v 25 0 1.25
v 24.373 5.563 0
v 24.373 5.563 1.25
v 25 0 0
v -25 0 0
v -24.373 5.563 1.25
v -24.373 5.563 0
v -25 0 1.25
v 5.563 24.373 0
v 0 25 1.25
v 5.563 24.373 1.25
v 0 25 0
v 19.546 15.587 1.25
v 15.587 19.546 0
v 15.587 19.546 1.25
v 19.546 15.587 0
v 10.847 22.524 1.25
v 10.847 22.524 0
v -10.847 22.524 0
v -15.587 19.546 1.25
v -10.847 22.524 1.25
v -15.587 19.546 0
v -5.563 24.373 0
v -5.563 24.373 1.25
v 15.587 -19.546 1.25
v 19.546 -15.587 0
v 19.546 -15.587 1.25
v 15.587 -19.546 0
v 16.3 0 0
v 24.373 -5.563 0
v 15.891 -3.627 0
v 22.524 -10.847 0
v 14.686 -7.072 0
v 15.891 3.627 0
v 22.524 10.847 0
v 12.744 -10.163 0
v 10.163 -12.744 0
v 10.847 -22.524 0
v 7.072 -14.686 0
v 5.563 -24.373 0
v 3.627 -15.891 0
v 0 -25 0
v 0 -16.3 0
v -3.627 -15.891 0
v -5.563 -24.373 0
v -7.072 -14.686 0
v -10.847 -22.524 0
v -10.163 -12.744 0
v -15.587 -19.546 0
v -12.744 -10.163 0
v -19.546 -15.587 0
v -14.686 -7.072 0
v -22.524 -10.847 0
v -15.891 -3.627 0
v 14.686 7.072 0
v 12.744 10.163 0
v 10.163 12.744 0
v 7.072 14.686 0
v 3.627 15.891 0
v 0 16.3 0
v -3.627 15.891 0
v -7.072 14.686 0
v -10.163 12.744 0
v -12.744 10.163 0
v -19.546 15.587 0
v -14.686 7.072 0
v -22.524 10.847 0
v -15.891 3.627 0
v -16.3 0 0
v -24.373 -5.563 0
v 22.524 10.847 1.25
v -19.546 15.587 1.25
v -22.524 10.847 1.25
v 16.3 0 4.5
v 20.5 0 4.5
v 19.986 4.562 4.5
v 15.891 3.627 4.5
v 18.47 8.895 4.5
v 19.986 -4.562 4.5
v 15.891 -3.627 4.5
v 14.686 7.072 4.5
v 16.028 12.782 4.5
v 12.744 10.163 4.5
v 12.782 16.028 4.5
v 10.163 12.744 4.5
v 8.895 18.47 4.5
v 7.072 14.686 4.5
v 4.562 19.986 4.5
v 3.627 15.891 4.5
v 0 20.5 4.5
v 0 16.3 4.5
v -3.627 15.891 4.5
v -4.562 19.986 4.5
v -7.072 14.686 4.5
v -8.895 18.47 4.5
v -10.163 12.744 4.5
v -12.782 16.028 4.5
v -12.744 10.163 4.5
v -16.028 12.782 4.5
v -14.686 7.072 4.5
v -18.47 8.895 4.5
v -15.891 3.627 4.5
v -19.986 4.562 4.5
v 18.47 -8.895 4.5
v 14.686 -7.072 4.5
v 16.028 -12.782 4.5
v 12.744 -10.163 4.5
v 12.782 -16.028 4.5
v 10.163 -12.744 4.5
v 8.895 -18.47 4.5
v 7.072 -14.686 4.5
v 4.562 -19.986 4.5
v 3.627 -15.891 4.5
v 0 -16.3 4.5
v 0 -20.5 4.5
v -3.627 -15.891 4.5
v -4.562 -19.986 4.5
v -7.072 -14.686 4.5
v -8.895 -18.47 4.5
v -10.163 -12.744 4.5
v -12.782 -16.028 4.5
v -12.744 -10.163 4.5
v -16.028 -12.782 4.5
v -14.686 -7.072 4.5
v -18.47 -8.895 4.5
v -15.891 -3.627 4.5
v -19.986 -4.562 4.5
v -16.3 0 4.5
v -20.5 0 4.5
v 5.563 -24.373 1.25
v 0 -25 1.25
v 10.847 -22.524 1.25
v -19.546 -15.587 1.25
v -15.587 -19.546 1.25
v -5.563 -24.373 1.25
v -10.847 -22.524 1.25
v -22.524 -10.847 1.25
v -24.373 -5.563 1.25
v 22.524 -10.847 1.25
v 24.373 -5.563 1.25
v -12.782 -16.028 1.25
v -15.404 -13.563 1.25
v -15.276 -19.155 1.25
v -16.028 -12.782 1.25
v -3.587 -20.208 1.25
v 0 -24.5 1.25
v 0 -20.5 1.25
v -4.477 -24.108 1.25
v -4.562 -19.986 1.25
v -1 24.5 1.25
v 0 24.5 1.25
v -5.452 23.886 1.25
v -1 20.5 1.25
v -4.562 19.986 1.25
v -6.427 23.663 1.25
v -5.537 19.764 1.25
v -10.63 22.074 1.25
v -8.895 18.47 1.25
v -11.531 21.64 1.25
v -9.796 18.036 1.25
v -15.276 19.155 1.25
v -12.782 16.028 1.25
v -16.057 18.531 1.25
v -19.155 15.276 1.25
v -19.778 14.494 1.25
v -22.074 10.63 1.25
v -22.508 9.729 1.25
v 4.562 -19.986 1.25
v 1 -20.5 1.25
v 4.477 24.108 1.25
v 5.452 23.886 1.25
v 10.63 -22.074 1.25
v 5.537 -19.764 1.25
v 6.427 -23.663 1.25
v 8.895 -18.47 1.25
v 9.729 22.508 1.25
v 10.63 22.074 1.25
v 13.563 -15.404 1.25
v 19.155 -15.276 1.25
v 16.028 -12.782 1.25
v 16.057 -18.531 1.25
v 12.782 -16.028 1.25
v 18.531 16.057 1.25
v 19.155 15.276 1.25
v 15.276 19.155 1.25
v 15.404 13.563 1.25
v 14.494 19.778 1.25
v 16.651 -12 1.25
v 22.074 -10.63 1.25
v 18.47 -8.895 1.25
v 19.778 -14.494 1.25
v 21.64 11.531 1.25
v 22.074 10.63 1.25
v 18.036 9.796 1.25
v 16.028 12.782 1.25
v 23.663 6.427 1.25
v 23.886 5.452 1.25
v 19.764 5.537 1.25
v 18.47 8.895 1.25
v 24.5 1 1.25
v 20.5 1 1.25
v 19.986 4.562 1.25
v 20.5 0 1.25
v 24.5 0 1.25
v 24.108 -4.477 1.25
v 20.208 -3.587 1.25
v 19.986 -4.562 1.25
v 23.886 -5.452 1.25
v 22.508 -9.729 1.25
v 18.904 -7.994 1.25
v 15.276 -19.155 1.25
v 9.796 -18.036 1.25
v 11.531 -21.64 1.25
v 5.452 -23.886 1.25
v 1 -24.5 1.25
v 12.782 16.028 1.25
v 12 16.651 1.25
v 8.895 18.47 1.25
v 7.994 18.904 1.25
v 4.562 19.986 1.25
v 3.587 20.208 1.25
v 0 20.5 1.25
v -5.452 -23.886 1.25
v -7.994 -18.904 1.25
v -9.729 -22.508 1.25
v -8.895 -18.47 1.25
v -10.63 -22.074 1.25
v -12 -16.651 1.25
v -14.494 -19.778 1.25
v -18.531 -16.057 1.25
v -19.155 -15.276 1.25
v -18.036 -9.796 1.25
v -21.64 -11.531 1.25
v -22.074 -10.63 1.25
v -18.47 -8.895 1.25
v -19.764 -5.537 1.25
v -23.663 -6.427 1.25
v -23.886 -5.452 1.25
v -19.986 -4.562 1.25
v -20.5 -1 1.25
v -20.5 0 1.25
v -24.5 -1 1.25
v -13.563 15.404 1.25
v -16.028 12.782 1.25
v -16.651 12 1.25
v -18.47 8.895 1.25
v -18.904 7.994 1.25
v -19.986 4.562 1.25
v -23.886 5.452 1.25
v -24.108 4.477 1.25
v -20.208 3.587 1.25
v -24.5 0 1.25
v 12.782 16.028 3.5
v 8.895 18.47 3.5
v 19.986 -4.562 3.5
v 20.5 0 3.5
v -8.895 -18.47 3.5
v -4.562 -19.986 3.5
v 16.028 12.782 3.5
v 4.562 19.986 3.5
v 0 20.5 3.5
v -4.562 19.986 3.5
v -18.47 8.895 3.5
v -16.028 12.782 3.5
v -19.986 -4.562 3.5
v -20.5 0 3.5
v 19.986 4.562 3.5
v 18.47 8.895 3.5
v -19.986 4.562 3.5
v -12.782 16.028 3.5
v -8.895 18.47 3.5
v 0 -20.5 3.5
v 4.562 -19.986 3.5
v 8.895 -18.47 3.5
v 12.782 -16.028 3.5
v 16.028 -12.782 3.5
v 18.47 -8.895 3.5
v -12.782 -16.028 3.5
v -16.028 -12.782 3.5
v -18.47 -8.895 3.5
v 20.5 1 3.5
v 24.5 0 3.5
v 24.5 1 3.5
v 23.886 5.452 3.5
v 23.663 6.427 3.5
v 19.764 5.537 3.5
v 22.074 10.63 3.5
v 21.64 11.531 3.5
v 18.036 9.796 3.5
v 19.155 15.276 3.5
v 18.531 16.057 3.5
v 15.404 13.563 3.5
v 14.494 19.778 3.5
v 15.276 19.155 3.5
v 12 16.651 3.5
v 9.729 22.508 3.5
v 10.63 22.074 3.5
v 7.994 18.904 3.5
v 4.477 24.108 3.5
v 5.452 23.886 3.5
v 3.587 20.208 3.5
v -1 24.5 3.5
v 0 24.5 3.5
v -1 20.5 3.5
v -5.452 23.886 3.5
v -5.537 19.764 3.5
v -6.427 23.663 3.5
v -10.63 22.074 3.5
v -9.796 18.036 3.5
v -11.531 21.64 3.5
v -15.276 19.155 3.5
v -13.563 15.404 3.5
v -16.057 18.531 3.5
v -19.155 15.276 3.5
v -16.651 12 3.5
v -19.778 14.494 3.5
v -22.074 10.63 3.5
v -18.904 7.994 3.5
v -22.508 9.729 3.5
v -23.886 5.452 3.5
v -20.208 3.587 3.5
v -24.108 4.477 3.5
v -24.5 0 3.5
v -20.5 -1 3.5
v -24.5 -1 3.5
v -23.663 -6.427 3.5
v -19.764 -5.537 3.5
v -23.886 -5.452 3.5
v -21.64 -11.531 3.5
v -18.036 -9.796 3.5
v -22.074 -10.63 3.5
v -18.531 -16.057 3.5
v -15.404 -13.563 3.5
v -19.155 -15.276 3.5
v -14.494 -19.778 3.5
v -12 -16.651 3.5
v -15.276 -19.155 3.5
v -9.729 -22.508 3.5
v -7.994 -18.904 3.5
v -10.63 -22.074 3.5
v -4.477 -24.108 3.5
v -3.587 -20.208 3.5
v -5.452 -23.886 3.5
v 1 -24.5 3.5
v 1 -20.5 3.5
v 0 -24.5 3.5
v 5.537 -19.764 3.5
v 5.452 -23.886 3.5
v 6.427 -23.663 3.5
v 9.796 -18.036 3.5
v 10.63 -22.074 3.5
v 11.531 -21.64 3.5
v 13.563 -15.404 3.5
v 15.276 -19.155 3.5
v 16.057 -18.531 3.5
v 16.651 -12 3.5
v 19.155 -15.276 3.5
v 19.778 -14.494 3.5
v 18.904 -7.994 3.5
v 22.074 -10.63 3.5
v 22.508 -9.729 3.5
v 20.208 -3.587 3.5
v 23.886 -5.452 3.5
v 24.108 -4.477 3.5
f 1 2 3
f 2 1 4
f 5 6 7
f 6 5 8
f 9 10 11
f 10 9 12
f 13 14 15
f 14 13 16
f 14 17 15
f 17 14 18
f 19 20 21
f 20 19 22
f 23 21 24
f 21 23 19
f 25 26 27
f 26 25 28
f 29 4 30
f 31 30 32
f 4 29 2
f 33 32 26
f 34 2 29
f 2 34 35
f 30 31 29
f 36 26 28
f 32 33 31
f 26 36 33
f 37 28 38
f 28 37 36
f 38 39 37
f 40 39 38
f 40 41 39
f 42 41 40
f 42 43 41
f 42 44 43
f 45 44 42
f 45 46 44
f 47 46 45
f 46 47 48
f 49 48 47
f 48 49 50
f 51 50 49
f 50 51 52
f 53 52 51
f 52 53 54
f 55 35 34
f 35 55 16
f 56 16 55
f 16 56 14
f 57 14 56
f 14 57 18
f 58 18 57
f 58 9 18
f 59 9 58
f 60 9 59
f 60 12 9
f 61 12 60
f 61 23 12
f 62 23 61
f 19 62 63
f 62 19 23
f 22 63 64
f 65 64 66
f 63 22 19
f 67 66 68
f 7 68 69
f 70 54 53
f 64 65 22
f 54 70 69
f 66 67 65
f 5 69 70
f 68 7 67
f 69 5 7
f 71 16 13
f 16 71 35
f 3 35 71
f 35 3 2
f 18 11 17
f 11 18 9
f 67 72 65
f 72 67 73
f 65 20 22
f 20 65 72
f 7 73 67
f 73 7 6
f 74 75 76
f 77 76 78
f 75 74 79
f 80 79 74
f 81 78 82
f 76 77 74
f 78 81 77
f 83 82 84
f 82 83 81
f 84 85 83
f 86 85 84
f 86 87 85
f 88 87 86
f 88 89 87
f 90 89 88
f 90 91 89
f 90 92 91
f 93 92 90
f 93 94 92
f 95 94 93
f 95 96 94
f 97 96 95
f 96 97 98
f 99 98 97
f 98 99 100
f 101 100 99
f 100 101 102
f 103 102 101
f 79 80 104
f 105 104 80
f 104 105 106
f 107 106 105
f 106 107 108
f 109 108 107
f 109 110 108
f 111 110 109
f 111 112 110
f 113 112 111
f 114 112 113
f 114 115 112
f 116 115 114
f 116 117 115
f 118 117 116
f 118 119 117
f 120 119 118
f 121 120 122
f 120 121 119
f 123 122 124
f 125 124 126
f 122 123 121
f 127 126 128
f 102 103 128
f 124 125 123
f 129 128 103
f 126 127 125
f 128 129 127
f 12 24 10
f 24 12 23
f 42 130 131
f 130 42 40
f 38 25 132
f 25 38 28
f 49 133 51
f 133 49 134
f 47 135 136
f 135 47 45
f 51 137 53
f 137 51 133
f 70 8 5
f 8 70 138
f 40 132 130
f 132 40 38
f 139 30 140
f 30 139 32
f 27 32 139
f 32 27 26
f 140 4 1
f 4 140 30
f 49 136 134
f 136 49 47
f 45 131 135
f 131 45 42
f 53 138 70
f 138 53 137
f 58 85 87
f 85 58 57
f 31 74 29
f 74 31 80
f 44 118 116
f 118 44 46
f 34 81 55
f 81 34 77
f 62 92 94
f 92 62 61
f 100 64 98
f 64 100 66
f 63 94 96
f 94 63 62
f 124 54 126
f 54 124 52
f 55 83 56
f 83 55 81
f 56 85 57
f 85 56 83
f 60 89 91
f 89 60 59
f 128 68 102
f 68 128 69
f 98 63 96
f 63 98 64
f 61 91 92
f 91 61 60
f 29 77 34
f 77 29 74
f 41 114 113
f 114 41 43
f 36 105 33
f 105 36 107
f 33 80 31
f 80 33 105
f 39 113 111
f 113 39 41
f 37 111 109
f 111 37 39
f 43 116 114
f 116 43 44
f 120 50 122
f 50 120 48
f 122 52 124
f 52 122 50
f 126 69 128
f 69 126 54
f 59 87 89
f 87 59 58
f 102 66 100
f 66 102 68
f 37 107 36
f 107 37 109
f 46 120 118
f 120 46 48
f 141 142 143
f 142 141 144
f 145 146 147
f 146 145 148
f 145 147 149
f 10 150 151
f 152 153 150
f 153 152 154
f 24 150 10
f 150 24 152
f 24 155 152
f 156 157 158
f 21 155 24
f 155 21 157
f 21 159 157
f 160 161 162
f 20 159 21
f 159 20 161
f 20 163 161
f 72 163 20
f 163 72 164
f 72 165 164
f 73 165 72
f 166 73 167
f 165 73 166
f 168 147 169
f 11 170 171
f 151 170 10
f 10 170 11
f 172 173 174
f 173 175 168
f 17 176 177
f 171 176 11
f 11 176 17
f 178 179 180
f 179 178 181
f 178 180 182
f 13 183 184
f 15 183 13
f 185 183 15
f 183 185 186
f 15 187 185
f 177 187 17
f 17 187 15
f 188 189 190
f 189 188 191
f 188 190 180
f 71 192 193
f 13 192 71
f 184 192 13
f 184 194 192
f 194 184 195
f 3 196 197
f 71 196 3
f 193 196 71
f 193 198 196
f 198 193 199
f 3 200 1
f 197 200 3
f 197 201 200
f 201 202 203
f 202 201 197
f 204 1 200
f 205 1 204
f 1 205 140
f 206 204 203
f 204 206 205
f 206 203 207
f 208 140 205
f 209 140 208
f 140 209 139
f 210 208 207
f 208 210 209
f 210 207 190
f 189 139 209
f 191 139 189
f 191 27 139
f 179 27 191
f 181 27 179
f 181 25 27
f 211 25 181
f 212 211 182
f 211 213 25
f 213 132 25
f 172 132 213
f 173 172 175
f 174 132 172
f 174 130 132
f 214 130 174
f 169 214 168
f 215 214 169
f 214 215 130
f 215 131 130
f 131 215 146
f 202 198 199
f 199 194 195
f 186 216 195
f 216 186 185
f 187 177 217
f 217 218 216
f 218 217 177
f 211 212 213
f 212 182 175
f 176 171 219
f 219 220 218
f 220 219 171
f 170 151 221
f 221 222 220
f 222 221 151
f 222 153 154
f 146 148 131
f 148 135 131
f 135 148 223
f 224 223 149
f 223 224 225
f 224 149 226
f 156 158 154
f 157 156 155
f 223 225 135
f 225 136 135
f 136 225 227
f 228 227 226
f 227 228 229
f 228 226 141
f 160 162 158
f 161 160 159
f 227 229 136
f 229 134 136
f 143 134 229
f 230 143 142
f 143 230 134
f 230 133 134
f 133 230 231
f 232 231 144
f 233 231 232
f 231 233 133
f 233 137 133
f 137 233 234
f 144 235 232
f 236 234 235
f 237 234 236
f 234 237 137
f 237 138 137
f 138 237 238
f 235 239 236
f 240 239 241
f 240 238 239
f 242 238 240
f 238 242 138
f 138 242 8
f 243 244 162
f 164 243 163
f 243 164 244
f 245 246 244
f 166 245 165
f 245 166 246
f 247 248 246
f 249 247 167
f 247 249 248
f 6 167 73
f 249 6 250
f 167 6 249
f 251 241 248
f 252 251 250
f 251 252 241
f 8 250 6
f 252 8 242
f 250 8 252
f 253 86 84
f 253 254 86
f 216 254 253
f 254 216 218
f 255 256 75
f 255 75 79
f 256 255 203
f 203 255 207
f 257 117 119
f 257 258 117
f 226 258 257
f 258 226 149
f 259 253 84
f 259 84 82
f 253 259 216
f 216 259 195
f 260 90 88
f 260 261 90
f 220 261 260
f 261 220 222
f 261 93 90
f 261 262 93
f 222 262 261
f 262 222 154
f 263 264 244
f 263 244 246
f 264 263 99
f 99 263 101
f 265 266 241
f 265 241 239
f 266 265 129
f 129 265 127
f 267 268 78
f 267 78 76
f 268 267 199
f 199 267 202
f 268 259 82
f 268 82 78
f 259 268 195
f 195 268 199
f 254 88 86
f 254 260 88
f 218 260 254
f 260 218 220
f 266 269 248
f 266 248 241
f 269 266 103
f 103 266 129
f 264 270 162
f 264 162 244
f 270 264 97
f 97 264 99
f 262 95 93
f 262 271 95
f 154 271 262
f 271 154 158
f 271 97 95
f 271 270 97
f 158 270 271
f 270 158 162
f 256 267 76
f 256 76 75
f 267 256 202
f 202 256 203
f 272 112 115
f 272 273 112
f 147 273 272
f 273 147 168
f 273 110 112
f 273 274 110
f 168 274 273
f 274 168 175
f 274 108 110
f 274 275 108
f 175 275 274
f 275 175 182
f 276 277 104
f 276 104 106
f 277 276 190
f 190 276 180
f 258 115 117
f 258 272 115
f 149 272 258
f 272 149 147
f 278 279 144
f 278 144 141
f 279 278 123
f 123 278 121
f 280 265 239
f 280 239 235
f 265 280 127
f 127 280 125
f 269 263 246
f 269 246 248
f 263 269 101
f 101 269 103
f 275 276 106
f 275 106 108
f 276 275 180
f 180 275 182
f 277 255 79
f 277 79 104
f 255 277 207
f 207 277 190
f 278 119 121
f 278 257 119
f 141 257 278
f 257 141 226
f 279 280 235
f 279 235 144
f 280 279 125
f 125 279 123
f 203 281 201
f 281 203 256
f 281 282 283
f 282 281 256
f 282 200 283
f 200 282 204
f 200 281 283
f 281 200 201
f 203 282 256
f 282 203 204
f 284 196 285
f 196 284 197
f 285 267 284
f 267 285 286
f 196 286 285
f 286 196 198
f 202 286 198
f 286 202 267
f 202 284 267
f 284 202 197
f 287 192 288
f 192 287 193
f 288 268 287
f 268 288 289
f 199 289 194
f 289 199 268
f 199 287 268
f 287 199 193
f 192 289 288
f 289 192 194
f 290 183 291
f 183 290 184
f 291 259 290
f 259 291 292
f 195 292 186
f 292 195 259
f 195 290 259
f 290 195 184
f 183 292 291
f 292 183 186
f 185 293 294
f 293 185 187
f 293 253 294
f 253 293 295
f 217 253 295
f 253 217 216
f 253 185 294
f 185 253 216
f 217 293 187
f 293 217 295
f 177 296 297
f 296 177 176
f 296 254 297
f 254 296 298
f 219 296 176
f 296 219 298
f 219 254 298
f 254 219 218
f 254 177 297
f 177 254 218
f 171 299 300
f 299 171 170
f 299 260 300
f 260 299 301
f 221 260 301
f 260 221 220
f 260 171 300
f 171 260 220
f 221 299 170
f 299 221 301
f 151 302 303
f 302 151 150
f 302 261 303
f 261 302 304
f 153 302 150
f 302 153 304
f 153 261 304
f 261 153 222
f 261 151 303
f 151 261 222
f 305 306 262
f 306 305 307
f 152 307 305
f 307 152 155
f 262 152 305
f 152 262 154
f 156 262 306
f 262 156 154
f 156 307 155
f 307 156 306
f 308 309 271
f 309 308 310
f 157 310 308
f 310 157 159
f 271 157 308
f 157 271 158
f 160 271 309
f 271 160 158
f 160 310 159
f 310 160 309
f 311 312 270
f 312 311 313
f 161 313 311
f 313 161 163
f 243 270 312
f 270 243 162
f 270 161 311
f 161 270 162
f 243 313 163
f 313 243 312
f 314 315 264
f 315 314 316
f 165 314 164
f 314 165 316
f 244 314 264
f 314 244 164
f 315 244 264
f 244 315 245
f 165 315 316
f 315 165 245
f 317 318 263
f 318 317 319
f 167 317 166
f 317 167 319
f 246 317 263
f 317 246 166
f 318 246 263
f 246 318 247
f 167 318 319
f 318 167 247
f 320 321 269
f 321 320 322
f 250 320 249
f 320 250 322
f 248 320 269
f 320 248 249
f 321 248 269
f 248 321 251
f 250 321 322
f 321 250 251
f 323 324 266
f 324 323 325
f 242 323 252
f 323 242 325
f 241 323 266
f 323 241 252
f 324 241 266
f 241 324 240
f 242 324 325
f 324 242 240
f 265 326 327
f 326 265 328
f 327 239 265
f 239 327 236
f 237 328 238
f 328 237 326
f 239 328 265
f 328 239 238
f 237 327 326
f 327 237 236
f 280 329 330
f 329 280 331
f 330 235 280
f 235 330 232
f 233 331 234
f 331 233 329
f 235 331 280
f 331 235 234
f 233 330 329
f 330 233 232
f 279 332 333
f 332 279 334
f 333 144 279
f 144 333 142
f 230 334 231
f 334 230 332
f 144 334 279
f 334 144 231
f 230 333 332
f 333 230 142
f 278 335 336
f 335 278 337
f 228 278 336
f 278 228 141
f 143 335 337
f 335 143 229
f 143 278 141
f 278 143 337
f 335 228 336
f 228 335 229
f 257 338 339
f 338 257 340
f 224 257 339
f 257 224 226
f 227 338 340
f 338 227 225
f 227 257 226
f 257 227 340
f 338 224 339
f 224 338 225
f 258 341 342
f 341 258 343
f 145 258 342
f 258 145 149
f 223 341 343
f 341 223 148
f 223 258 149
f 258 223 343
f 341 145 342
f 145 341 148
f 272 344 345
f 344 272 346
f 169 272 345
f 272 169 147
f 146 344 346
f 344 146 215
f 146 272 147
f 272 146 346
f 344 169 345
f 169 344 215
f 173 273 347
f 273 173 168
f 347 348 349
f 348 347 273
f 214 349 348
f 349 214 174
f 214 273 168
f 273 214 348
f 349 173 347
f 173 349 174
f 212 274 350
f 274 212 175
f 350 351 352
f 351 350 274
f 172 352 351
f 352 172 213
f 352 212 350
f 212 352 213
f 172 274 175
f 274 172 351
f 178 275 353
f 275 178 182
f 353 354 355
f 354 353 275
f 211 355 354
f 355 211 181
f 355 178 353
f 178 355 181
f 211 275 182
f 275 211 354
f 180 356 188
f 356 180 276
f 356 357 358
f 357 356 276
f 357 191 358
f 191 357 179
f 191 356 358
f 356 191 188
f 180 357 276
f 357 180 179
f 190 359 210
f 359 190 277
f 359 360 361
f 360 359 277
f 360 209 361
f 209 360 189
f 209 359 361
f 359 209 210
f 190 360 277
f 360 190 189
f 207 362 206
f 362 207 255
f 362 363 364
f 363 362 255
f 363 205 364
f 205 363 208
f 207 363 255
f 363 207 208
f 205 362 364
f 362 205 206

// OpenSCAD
// file: lib.scad
PF=1;//preview fix

module tube(h=1,r=2,ir=1){
    
    difference(){
        cylinder(h,r=r);
        translate([0,0,-1*PF]) cylinder(h+(PF*2),r=ir);
    }
   
}


module rollerGear(h=4,r=25,tooth=4.5, nTeeth=28,wall=2 ){
    
    toothInset = r-tooth;
    rTooth = tooth/2;
    $fn=nTeeth;
    union(){
        difference(){
            tube(h,r, r-(tooth+(wall*2)));  
            
            // track
            translate([0,0,h-rTooth-1])
            tube(rTooth+1+PF,r+PF, toothInset);  
        }
        
        //teeth
        for(n=[0:nTeeth]){
            
            rotate([0,0,(360/nTeeth)*n])
            translate( [toothInset,0, h-rTooth-1] )
            union(){
                
                //square teeth
                //translate([0,-rTooth,-rTooth])
                cube([4,1,(tooth/2)]); 
            }
            
        }
    }
}
// main file
include <lib.scad>


$fn=128;

/*
difference(){
    
    translate([0,0,-10]) 
        rollerGear(h=h,r=r);
    
    translate([0,0,h]) 
        *cube([r*2,r*2,h],center=true);
}
*/
bracket();

mirror([0,0,1])
    translate([0,0,-230])
    bracket();

color("grey")
translate([0,0,10])
cylinder( 200, d=32 );

translate([0,0,18])
gear();



module bracket(h=10, ){
    
    union(){
        d=60;
        
        difference(){
            translate([-d/2,-d/2,0])
            union(){
                cube( [60,100,h]);
                cube( [d,d,30] );
            }
            translate([0,0,h])
                cylinder( 41,r=26 );
            
            translate([0,-26,h])
                cube( [30+PF,52,20+PF] );
        }
        translate([0,0,h])
        cylinder( 20,r=8);
        
    }
    
    
}

module gear(){
h=4.5;
r=25;
    rotate([180,0,0])
    translate([0,0,-h])
    rollerGear(h=h,r=r);
    
    mirror([0,0,1])
    rotate([180,0,0])
    translate([0,0,-h])
    !rollerGear(h=h,r=r);
}

module rollerGear(h=4,r=25,ir=16.3,tooth=4.5, nTeeth=28,wall=2 ){
    
    toothInset = r-tooth;
    rTooth = tooth/2;
    $fn=nTeeth;
    union(){
        difference(){
            //ir=r-(tooth+(wall*2));
            tube(h,r, ir);  
            
            // track
            translate([0,0,h-rTooth-1])
            tube(rTooth+1+PF,r+PF, toothInset);  
        }
        
        //teeth
        for(n=[0:nTeeth]){
            
            rotate([0,0,(360/nTeeth)*n])
            translate( [toothInset,0, h-rTooth-1] )
            union(){
                
                //square teeth
                //translate([0,-rTooth,-rTooth])
                cube([4,1,(tooth/2)]); 
            }
            
        }
    }
}


















/*

// tube=32, ball=4
baseHeight=3;
tube=33;
gearR=25;
noBalls=30;
$fn=noBalls;

module base(){
    cylinder(baseHeight,27,27);
}

module gear(){
    ball=4.5;
    ballR=ball/2;
    h=6;
    
    inset=4;
    ballInset=gearR-((ball/2)*1.2)-1;
    
     difference(){
        
        
        union(){
            translate([0,0,baseHeight]) cylinder(h,gearR,gearR, $fn=noBalls);
        }
    
        //tube cut away
        cylinder(h+1000,d=tube+inset,d=tube+inset);
      
        
        //flange join
        //translate([0,0,baseHeight]) cylinder(h,d=tube+inset,d=tube+inset);
       
        translate([0,0,baseHeight]) tube(1, gearR,gearR-3);
        // ball cut aways
        for(n=[0:noBalls]){
            
            rotate((360/noBalls)*n)
            translate([ballInset,0,baseHeight+(h/2)]) 
            union(){
                sphere(d=ball, $fn=16);
                
                rotate([0,90,0])
                cylinder( 5,d=ball,$fn=16 );
                
                translate([-2,0,0]) 
                rotate([0,90,0]) 
                *cylinder(ball+10,ball/2,ball/2);
                
                
                
                translate([0,0,1])
                rotate([0,90,0])
                *cube([2,3,10],center=true); 
                
                
            }
          /*  
            rotate([0,0,(360/noBalls)*n-5] )
            translate([ballInset,-6,baseHeight+(h/2)-.5]) 
            rotate([0,90,0])
            %cube([20,2,1]); 
            
            */
            /*
            rotate([0,0,(360/noBalls)*n+5] )
            translate([ballInset,-9,baseHeight+(h/2)]) 
            cylinder(1,2,1); 
            
            rotate([0,0,(360/noBalls)*n+5] )
            translate([ballInset,-9,baseHeight+(h/2)-1]) 
            cylinder(1,1,2); 
            ---* /---
            
        }
    }
}


module flange(){
    difference(){
        
        h=3;
        
        union(){
            cylinder(h,18,18);
            translate([0,0,h])base();
        }
        
        cylinder(h+1000,d=tube,d=tube);
    }
}

rotate([0,180,0])
//translate([0,0,5]) 
*flange(); 


*gear();

translate([0,0,8]) 
rotate([0,180,0])
*flange(); 



difference(){
    h=6;
    r=25;
    //translate([0,0,-10]) 
        rollerGear(h=h,r=r);
    
    translate([0,0,h]) 
        cube([r*2,r*2,h],center=true);
}



module rollerGear(h=6,r=25,tooth=4.5, nTeeth=28,wall=2 ){
    
    toothInset = r-tooth;
    rTooth = tooth/2;
    $fn=nTeeth;
    difference(){
        tube(6,r, r-(tooth+(wall*2)));  
        
        // chain cutaway
        translate([0,0,h/2-(.5)]) 
        rotate(6.43)
        tube(1,r+PF, toothInset+.12);  
        
        //teeth
        for(n=[0:nTeeth]){
            
            rotate([0,0,(360/nTeeth)*n])
            translate( [toothInset,0, h/2] )
            union(){
                
                //square teeth
                translate([0,-rTooth,-rTooth])
                cube([tooth+r,tooth,tooth]); 
                
                // sphere teeth
                translate([rTooth,0,0])
                *union(){
                    sphere(d=tooth);
                    rotate([0,90,0]) 
                    cylinder(rTooth+gearR,d=tooth);
                }
            }
            
        }
    }
}
*/
